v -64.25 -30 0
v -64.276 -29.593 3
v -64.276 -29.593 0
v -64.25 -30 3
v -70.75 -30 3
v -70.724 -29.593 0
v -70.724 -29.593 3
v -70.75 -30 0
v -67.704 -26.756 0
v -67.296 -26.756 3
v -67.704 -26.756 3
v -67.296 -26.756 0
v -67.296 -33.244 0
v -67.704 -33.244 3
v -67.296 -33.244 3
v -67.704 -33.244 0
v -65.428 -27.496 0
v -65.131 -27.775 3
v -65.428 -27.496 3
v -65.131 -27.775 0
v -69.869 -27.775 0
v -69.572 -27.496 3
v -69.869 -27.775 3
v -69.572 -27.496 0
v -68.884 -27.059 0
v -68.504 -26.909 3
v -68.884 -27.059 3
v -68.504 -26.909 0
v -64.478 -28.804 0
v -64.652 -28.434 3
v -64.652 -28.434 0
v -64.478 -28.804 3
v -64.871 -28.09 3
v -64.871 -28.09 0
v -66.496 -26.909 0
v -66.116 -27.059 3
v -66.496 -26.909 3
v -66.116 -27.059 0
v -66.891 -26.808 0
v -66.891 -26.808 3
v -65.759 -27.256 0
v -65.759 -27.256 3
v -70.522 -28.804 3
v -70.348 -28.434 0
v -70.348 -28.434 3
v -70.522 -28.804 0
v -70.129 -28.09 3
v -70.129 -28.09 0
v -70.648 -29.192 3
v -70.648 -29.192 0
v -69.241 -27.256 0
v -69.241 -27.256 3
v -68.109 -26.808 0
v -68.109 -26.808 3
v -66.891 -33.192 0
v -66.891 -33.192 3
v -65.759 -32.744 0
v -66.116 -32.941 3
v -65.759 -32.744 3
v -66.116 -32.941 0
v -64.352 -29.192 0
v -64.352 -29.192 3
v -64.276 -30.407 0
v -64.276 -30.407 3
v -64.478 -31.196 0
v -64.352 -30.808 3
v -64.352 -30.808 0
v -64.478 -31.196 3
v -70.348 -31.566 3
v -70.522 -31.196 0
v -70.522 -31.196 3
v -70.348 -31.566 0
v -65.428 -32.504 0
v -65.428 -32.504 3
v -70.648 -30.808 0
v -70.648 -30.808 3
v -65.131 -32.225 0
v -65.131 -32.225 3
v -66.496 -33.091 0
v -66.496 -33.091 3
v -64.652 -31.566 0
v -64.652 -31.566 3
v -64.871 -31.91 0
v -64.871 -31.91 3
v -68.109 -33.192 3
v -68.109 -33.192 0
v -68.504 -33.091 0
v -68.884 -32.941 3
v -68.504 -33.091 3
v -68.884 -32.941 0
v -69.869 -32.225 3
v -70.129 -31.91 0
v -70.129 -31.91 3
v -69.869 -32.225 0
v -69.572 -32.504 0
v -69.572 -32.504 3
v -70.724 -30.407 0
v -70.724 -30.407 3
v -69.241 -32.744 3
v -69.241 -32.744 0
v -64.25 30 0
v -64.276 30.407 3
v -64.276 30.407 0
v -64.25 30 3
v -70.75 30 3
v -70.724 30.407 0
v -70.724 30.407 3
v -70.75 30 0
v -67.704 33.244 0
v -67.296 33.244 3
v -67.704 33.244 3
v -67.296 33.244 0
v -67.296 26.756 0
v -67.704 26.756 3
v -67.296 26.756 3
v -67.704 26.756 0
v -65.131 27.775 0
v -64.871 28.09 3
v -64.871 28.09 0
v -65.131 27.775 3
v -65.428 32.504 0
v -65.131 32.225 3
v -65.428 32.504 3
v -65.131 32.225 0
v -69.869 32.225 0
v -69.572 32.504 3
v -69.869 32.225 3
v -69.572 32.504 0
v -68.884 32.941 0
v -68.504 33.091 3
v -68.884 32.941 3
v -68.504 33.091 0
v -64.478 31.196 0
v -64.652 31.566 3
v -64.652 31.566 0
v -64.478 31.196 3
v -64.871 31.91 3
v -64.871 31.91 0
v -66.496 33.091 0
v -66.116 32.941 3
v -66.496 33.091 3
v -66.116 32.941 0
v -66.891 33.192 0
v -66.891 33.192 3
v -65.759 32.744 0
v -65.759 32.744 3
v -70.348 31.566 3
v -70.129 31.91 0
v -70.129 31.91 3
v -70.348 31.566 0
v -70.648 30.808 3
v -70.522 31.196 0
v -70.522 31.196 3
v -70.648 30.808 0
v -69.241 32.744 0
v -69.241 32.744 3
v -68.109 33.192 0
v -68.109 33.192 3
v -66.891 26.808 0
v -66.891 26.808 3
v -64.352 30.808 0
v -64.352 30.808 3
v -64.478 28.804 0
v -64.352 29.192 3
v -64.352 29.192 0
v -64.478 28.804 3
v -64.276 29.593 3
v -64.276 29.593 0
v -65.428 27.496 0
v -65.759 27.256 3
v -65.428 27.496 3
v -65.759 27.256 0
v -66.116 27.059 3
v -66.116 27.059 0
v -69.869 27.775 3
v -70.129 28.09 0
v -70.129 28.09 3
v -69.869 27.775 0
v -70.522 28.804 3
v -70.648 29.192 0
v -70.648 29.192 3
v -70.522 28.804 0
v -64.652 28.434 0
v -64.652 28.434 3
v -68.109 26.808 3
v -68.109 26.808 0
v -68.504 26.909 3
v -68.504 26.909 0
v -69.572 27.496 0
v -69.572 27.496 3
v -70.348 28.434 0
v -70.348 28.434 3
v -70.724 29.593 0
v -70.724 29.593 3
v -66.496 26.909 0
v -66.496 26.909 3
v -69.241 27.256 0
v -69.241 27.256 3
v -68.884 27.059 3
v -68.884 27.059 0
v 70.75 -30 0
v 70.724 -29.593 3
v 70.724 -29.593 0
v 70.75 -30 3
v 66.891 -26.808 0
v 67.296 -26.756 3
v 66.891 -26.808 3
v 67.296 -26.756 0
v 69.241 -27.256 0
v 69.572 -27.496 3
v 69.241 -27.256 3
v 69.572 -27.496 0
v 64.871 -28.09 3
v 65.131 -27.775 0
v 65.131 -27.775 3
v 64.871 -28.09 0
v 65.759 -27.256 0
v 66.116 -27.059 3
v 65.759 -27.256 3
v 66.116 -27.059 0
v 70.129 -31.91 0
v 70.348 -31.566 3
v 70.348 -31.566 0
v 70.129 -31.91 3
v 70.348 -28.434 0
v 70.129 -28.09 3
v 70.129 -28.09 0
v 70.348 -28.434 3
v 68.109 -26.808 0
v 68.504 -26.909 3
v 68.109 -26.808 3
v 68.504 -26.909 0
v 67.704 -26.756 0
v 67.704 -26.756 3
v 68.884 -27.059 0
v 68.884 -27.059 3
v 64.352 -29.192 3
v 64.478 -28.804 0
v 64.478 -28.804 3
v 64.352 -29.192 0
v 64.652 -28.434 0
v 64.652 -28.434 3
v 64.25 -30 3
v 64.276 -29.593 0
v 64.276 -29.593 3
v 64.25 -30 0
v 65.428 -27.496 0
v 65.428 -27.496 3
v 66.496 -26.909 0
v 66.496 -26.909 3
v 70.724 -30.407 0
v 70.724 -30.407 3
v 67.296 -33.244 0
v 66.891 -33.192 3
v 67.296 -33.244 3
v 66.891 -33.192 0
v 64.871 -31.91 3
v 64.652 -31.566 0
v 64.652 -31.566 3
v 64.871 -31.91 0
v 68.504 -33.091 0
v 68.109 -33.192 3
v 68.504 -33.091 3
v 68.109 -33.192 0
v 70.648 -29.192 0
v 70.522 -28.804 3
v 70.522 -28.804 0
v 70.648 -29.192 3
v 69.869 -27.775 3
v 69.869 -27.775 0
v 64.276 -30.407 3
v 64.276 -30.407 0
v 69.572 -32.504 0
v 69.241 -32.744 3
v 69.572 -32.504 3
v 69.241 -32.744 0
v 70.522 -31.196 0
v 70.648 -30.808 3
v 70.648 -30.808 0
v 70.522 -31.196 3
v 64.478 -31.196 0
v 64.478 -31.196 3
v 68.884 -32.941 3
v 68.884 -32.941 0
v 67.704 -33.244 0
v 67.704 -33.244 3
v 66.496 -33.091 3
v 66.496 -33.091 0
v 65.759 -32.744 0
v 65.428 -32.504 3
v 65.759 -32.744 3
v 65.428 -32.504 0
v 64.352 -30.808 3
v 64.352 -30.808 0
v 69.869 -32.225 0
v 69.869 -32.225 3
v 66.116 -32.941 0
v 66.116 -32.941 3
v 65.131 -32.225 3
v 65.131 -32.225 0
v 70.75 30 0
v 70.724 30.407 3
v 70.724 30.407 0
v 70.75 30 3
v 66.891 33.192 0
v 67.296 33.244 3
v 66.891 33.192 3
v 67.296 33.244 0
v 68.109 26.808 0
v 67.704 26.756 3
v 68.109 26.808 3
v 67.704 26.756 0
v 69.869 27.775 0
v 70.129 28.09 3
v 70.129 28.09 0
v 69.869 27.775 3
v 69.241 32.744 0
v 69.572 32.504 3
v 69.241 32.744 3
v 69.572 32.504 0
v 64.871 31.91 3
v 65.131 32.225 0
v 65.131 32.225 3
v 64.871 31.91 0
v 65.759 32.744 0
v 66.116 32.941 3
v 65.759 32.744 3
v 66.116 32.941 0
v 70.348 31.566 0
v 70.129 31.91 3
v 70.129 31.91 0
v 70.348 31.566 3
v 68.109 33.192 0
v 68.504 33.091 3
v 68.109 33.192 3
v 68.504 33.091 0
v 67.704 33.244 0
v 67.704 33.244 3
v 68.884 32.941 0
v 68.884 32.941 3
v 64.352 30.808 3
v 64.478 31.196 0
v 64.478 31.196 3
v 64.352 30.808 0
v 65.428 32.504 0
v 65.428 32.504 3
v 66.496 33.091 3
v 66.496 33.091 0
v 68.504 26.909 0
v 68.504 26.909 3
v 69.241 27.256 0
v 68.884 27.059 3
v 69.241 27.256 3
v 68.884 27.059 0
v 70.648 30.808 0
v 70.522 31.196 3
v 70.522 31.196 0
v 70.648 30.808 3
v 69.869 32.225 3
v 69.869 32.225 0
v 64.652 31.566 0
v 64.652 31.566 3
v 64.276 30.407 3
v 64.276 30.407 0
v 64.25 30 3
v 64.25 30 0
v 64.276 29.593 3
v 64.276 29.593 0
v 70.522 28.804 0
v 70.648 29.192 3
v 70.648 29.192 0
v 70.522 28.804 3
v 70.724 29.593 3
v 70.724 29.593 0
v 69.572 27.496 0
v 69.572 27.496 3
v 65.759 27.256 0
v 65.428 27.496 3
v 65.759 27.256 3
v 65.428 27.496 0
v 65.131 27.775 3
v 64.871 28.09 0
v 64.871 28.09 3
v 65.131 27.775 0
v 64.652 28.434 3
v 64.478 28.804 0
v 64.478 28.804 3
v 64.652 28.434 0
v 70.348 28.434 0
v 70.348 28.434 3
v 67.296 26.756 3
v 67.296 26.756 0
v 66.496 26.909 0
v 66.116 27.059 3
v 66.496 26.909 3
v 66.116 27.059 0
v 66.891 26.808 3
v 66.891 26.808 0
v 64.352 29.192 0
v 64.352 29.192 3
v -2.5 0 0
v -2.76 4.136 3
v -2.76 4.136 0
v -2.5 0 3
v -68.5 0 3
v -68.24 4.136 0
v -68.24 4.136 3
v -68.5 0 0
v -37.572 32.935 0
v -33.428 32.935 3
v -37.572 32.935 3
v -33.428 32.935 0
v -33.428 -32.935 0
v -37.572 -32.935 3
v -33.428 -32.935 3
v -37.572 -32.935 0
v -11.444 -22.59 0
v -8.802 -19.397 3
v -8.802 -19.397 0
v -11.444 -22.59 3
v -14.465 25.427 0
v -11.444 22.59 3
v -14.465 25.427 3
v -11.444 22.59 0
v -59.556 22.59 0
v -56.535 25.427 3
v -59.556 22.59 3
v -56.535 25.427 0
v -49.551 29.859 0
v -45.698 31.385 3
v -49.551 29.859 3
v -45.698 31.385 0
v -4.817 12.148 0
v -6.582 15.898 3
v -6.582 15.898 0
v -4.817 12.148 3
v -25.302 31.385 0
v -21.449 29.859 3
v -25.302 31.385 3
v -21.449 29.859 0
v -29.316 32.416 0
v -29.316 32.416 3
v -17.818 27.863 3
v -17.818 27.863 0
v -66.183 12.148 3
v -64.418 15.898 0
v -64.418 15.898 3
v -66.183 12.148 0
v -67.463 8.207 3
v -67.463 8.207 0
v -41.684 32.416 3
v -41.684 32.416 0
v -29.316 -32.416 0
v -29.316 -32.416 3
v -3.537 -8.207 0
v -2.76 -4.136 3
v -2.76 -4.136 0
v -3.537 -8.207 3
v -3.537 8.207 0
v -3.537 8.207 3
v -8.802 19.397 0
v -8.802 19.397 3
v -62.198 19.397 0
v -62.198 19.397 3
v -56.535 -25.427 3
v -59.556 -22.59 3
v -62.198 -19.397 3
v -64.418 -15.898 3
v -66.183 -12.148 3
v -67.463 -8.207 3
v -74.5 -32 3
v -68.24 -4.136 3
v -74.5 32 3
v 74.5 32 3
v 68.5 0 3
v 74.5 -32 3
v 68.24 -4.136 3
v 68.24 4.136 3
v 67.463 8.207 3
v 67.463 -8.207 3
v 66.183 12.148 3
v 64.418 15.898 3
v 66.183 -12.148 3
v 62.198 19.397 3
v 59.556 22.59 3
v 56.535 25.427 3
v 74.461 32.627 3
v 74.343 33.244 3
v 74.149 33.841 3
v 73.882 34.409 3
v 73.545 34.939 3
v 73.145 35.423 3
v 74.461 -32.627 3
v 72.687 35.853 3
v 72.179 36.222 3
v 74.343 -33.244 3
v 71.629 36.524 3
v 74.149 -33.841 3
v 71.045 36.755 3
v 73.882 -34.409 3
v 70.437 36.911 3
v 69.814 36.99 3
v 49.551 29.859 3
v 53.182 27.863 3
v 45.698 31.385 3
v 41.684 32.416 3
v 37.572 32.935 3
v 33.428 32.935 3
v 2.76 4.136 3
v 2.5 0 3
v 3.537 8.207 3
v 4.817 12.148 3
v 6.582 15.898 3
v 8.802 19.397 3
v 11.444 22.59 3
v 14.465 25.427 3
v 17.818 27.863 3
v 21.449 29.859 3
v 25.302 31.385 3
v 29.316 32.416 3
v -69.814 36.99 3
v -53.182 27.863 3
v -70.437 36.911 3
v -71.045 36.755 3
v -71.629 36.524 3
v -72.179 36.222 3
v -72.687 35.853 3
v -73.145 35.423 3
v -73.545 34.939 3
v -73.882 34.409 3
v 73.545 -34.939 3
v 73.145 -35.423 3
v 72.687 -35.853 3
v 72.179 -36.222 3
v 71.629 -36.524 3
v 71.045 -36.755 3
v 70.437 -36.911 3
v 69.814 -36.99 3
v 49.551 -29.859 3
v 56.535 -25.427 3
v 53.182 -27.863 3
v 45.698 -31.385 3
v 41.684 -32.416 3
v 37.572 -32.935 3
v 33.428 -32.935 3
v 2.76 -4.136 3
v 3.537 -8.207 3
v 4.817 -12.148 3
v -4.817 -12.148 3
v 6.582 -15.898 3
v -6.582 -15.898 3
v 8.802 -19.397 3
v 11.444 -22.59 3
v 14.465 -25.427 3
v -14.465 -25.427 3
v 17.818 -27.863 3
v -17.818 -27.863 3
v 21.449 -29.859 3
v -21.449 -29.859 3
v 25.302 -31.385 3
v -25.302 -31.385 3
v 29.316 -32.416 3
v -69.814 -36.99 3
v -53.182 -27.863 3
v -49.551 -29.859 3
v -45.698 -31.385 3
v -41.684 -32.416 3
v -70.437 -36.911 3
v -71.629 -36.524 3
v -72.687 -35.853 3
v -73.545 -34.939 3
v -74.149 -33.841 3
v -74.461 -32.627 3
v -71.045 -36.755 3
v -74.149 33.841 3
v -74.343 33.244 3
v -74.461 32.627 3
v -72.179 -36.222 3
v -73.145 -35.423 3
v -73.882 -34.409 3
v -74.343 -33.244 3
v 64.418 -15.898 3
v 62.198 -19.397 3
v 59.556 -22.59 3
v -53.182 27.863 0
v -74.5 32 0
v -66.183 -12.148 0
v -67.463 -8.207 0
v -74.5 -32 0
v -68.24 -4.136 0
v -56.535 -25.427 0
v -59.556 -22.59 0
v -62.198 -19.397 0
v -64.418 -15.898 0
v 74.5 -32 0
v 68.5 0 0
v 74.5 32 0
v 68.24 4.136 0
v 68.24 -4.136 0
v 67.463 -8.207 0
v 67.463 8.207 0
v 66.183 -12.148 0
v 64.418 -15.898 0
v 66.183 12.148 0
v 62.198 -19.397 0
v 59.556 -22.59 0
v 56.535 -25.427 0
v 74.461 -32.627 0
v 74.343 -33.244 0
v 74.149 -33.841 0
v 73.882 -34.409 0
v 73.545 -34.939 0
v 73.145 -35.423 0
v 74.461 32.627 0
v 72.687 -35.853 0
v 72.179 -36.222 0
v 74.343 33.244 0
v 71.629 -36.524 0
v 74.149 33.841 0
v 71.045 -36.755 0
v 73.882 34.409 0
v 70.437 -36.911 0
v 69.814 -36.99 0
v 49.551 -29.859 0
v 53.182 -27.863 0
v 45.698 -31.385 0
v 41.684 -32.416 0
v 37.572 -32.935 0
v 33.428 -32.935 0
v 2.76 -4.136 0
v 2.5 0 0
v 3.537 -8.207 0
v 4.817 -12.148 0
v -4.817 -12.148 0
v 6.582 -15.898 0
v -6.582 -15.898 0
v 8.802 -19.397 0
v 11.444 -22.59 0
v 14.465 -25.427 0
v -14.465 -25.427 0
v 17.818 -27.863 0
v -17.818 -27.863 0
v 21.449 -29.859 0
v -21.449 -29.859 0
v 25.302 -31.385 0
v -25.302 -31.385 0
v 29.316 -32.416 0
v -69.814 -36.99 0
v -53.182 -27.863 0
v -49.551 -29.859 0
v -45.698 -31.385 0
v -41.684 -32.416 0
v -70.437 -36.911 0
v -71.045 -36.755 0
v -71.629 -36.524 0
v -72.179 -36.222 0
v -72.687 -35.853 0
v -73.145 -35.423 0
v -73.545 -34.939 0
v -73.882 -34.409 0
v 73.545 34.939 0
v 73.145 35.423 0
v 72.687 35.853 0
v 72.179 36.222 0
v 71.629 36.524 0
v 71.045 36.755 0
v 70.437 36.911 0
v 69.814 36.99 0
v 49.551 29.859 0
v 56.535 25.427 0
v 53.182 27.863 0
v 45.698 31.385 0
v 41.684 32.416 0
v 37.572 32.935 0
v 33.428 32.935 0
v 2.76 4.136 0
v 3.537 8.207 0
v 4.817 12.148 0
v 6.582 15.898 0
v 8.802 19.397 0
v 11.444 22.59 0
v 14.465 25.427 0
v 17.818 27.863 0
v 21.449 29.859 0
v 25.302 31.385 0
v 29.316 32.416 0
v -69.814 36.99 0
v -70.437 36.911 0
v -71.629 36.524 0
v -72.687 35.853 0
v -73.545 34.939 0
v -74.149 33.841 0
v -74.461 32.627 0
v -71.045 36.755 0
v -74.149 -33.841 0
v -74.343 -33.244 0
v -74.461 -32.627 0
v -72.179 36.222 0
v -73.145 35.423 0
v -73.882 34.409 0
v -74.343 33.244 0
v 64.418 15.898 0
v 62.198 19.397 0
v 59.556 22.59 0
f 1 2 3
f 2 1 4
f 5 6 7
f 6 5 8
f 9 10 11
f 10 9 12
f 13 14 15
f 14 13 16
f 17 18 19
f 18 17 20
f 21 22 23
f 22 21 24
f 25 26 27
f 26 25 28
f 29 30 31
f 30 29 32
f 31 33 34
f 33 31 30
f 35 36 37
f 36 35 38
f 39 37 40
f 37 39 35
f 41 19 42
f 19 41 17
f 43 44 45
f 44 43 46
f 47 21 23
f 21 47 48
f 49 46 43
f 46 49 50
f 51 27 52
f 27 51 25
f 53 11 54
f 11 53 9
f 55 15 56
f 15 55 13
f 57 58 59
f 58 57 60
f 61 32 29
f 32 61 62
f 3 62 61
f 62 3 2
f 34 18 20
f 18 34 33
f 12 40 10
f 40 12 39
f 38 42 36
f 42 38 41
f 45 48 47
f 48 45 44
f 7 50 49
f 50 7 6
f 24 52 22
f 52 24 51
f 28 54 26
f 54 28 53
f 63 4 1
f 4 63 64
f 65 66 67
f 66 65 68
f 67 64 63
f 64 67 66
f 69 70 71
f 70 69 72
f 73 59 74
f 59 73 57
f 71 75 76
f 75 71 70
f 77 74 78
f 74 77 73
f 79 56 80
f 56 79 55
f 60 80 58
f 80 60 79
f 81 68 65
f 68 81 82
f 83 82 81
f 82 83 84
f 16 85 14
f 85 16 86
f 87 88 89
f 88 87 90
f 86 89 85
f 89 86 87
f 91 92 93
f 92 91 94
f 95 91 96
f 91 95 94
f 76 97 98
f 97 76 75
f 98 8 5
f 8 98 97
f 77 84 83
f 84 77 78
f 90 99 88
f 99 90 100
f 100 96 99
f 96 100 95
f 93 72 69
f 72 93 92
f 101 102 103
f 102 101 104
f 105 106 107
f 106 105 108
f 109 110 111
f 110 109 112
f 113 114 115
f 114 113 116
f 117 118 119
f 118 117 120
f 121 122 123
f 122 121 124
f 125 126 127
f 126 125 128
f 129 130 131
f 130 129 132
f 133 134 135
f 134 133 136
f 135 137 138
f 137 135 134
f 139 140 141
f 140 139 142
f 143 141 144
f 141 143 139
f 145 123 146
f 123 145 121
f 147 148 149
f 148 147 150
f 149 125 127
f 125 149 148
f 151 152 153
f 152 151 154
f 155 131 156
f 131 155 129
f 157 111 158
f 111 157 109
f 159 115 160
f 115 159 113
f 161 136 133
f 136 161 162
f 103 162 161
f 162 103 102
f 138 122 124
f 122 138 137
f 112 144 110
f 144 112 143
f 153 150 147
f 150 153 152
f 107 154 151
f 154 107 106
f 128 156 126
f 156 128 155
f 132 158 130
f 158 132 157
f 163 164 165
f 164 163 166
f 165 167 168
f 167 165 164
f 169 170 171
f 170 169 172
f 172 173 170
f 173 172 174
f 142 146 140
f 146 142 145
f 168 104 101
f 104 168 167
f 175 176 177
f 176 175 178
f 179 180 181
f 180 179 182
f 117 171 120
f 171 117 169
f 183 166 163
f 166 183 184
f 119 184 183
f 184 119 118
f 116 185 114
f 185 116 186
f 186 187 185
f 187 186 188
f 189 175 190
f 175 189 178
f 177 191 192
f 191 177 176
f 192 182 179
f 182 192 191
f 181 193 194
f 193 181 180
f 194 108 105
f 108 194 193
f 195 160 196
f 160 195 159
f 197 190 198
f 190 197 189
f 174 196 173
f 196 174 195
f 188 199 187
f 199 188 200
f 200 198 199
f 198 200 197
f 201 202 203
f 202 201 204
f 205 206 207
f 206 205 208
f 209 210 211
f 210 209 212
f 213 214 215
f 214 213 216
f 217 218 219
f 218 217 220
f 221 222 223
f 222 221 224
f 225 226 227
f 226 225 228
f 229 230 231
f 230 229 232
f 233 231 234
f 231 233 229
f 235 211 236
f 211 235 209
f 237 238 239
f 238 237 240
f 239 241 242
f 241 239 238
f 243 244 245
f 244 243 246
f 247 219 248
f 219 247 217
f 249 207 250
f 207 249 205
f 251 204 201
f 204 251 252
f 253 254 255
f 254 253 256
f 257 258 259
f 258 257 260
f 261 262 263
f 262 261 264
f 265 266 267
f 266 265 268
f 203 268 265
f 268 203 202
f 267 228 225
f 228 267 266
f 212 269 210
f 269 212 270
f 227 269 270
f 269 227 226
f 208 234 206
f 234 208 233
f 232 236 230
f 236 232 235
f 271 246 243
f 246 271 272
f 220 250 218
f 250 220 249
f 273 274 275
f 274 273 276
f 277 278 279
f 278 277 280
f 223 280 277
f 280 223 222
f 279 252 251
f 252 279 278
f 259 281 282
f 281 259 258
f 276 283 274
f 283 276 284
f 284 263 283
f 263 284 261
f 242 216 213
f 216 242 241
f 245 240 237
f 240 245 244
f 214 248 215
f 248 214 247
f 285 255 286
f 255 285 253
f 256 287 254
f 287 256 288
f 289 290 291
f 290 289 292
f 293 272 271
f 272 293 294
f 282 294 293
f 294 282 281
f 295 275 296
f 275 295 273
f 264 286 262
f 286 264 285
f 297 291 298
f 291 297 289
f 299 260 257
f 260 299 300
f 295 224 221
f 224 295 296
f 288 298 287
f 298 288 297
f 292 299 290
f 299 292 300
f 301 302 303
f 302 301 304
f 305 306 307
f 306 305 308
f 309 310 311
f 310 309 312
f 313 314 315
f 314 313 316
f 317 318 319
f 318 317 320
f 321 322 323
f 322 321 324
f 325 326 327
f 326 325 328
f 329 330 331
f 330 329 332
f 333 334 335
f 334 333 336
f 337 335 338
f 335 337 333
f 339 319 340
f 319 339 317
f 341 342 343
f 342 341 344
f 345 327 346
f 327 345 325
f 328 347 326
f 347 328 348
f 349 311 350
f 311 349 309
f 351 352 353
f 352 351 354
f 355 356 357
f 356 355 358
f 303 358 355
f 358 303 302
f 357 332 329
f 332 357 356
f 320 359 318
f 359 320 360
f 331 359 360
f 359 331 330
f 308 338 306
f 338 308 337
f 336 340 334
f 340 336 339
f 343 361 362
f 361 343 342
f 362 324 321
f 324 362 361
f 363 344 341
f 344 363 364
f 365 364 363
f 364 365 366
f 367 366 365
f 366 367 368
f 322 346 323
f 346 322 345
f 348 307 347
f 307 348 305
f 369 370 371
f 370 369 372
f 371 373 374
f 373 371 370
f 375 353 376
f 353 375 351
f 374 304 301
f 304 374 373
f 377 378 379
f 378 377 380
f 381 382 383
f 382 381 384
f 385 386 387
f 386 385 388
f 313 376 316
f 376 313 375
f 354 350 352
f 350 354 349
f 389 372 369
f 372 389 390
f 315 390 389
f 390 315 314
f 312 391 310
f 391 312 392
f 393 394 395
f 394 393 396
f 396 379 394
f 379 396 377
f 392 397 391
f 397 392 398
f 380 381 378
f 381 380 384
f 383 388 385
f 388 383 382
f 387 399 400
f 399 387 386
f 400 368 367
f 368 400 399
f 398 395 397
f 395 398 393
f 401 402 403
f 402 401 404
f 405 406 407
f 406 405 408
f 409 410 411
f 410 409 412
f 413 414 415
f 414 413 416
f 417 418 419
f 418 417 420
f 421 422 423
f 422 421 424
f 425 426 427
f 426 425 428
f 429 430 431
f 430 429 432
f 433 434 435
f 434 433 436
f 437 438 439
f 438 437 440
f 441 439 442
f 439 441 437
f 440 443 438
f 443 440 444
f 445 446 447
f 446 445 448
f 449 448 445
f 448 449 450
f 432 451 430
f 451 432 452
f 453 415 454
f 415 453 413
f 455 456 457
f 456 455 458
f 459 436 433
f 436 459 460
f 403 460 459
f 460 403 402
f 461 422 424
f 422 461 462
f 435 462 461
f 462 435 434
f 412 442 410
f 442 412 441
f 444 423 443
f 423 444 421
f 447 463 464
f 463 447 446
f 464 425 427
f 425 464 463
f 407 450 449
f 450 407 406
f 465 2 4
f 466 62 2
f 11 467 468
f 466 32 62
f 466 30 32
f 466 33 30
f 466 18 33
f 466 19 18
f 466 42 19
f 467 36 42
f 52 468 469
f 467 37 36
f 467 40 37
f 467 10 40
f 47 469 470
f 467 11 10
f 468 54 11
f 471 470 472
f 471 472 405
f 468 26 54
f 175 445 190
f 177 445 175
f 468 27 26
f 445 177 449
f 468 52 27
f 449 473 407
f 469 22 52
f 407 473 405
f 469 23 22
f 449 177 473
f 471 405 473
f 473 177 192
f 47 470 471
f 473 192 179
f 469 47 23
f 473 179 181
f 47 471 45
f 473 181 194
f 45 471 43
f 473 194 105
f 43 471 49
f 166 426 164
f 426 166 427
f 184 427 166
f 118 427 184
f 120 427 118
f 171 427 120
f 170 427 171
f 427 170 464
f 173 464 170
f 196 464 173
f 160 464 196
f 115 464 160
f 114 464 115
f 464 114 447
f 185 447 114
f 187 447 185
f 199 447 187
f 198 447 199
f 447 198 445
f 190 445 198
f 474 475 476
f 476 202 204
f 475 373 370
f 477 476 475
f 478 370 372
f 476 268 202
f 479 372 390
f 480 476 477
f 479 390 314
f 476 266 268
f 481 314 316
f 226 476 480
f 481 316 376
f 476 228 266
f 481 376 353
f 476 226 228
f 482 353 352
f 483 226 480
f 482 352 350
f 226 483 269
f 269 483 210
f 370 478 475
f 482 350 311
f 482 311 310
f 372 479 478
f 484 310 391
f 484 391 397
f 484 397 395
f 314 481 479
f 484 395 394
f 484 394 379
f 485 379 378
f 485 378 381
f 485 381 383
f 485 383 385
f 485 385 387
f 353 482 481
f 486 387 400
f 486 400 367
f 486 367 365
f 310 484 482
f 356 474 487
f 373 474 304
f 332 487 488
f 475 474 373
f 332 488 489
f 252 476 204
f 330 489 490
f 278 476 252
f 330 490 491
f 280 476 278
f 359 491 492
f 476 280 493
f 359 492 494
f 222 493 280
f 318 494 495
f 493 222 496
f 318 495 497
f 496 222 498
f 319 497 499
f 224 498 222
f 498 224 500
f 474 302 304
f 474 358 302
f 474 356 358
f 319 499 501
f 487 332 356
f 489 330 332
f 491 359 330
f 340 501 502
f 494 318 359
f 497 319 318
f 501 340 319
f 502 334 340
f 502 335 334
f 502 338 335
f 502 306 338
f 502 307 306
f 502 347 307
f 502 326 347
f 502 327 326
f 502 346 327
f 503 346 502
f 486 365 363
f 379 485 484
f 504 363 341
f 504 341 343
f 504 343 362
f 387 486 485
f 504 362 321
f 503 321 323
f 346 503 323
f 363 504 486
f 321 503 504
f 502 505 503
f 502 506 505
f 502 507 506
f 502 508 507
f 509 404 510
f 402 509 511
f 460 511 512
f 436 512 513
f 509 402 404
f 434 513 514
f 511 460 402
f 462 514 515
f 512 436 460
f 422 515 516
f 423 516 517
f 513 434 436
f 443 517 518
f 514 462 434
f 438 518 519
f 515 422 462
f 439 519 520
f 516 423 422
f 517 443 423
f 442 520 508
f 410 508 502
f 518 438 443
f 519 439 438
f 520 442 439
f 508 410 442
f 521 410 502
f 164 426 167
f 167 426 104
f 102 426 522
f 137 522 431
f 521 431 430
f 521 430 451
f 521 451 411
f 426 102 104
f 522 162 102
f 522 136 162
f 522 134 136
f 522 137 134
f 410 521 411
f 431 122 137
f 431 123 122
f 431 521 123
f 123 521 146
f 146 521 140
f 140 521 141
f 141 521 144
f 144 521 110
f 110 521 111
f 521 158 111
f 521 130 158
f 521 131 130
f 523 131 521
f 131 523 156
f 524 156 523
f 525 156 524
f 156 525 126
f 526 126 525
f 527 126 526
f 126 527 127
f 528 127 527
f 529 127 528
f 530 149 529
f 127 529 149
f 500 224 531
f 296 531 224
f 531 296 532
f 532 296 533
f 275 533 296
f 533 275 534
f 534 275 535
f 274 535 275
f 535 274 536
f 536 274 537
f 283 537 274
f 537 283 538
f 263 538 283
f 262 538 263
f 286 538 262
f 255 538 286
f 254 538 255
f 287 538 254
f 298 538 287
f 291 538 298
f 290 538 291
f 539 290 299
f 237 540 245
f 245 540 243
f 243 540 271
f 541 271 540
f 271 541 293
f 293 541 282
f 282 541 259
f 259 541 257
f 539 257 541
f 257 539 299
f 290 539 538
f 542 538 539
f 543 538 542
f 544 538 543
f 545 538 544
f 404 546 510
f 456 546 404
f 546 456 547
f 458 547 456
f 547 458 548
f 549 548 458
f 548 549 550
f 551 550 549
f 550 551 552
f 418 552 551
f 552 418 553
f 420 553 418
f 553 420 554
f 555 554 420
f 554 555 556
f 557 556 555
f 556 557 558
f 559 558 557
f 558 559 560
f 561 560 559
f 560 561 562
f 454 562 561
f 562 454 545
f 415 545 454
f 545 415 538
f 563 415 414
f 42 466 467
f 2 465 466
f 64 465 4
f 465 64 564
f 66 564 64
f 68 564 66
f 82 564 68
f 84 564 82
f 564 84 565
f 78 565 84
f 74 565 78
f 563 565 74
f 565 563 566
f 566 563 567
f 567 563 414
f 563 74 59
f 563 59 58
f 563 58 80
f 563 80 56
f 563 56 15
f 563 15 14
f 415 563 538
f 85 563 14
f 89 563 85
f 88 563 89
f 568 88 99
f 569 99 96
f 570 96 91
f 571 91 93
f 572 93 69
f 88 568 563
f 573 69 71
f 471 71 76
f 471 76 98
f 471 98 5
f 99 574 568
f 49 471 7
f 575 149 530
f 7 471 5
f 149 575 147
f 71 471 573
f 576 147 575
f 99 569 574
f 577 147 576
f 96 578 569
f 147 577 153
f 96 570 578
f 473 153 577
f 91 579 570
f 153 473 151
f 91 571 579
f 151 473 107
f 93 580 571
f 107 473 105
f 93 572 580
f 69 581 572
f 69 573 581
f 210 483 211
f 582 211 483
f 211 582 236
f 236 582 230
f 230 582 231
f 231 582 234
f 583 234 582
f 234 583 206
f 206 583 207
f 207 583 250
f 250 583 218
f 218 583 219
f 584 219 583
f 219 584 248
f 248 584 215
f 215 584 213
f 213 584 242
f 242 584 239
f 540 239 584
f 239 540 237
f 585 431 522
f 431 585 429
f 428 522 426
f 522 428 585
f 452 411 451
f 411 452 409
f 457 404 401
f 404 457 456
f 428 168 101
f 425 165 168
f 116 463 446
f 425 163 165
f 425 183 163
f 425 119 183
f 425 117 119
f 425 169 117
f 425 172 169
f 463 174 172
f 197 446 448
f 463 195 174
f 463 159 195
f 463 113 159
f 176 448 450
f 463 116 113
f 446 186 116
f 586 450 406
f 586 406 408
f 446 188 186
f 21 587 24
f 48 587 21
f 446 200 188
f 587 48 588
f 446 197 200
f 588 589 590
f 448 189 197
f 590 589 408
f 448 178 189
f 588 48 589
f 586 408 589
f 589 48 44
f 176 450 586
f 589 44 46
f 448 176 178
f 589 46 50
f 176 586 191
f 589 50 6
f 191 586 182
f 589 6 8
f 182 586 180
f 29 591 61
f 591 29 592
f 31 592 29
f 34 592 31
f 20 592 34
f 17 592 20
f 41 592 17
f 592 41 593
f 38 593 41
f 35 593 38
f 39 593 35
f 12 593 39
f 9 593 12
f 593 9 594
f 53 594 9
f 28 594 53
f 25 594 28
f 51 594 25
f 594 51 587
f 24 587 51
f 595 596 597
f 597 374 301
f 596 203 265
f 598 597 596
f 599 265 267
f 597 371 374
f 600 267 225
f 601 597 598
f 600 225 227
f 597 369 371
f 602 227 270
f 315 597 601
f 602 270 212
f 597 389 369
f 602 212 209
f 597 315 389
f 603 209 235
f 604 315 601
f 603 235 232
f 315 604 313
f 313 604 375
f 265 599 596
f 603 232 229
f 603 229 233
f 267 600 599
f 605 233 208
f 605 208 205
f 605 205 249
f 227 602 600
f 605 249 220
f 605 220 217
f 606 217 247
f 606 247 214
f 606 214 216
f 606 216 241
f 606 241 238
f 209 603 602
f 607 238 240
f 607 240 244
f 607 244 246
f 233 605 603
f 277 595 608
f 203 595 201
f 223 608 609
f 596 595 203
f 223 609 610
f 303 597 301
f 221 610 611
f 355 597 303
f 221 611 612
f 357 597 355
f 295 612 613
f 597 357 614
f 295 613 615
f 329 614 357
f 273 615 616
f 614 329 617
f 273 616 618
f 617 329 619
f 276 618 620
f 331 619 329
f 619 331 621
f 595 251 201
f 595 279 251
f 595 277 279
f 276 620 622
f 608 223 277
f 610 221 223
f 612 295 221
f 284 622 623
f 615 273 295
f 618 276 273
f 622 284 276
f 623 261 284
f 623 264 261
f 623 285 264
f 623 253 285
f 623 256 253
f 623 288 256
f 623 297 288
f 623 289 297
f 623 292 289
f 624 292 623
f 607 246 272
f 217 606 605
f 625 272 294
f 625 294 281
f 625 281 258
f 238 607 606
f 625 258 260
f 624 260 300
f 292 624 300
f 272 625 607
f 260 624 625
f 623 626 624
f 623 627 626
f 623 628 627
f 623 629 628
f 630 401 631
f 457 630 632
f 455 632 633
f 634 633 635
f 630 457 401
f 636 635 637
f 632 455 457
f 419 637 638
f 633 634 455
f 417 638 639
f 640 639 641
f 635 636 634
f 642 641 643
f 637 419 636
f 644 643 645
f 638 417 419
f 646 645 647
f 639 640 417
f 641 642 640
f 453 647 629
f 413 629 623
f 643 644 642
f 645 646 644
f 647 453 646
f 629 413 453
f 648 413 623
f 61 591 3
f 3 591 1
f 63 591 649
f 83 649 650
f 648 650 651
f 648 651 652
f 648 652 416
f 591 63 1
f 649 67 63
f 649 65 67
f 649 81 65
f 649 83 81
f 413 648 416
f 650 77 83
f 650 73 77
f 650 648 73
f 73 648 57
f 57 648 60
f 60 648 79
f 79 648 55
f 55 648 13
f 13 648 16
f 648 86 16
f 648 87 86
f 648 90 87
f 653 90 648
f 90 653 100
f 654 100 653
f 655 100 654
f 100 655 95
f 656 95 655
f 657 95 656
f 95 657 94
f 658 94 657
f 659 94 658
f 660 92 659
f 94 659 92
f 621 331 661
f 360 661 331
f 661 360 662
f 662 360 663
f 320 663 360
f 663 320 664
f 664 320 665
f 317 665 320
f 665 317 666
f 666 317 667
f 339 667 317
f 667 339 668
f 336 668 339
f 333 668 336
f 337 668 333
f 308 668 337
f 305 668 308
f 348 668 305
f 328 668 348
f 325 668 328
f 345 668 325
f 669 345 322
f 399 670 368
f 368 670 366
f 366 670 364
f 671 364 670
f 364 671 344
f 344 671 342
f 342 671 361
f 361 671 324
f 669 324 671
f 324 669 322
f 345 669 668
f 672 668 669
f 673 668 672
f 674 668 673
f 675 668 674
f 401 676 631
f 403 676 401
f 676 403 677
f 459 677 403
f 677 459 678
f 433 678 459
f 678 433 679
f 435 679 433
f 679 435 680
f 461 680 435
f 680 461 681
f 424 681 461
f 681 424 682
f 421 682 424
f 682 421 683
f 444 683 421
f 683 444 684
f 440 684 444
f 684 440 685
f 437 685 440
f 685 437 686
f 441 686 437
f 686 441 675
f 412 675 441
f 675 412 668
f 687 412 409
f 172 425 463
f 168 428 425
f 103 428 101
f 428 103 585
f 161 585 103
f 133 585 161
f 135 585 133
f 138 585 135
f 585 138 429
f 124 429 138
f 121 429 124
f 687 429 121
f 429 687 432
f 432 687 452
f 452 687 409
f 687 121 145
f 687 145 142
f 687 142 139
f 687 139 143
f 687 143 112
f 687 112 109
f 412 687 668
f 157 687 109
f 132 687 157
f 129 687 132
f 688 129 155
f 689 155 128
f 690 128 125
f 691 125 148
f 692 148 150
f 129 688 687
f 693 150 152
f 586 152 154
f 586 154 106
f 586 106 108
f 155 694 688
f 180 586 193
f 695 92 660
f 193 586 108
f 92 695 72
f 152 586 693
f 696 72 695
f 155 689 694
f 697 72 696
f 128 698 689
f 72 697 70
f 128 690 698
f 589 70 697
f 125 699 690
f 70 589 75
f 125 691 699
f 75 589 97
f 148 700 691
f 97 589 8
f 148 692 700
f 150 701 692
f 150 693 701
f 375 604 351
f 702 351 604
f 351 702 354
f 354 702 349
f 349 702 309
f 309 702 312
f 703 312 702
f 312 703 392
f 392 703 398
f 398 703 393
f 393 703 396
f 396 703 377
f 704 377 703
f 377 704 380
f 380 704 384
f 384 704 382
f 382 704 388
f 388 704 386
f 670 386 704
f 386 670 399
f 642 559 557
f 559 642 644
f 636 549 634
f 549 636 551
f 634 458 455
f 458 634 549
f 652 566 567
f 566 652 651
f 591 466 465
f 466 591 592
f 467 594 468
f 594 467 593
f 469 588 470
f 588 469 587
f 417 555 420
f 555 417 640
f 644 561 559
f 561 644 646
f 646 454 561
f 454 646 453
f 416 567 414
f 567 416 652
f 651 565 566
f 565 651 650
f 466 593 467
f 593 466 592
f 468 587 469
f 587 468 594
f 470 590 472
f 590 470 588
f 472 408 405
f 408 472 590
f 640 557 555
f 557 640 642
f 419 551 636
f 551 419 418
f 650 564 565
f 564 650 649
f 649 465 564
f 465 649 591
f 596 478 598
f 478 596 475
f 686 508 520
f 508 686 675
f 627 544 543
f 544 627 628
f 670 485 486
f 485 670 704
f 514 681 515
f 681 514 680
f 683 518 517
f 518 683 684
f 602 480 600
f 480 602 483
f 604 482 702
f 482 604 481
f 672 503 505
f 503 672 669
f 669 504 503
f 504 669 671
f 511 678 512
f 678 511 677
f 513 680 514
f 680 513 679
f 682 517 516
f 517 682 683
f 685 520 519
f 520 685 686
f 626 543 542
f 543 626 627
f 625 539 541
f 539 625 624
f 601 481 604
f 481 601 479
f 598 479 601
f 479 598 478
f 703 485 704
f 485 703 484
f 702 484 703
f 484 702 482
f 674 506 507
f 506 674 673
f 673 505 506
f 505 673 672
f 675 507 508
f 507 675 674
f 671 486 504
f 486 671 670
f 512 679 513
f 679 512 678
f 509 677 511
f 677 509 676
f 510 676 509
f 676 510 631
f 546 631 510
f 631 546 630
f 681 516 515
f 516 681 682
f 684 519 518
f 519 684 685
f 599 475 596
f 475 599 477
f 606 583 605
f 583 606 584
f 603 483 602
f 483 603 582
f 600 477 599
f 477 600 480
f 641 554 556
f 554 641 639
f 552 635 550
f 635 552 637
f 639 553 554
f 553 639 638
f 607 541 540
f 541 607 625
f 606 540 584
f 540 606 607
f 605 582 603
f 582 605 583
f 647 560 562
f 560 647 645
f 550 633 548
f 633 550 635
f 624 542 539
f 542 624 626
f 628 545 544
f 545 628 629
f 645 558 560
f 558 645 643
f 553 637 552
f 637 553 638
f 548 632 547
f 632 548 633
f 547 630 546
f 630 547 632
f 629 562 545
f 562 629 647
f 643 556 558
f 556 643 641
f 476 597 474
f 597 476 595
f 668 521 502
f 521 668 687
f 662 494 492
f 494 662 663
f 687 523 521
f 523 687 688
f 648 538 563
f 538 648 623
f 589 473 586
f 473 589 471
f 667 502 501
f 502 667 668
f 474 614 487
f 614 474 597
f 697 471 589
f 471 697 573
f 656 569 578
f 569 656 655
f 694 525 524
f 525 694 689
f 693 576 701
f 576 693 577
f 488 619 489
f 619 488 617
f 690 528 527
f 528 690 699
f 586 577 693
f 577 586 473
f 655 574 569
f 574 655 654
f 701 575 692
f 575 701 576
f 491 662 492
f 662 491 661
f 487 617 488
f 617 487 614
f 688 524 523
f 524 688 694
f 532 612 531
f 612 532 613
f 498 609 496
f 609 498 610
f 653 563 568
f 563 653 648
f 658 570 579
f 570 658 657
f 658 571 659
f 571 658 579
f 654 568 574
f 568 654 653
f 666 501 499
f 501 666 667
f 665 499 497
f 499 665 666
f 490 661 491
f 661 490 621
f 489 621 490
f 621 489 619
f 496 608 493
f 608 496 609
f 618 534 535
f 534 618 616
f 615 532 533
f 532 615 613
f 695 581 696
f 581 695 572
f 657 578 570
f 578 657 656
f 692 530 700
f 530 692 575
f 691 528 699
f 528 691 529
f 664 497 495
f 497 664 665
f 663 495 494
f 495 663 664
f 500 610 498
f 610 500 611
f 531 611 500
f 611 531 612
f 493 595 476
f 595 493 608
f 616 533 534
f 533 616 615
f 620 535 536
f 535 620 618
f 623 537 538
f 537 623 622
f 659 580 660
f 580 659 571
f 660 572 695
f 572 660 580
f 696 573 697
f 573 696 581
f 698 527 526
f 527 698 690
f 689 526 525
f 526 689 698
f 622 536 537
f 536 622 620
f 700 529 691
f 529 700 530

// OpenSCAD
$fn = 50;


difference() {
	union() {
		hull() {
			translate(v = [-69.5000000000, 32.0000000000, 0]) {
				cylinder(h = 3, r = 5);
			}
			translate(v = [69.5000000000, 32.0000000000, 0]) {
				cylinder(h = 3, r = 5);
			}
			translate(v = [-69.5000000000, -32.0000000000, 0]) {
				cylinder(h = 3, r = 5);
			}
			translate(v = [69.5000000000, -32.0000000000, 0]) {
				cylinder(h = 3, r = 5);
			}
		}
	}
	union() {
		#translate(v = [-67.5000000000, -30.0000000000, -100.0000000000]) {
			cylinder(h = 200, r = 3.2500000000);
		}
		#translate(v = [-67.5000000000, 30.0000000000, -100.0000000000]) {
			cylinder(h = 200, r = 3.2500000000);
		}
		#translate(v = [67.5000000000, -30.0000000000, -100.0000000000]) {
			cylinder(h = 200, r = 3.2500000000);
		}
		#translate(v = [67.5000000000, 30.0000000000, -100.0000000000]) {
			cylinder(h = 200, r = 3.2500000000);
		}
		#translate(v = [-35.5000000000, 0, 0]) {
			cylinder(h = 3, r = 33.0000000000);
		}
		#translate(v = [35.5000000000, 0, 0]) {
			cylinder(h = 3, r = 33.0000000000);
		}
	}
}
